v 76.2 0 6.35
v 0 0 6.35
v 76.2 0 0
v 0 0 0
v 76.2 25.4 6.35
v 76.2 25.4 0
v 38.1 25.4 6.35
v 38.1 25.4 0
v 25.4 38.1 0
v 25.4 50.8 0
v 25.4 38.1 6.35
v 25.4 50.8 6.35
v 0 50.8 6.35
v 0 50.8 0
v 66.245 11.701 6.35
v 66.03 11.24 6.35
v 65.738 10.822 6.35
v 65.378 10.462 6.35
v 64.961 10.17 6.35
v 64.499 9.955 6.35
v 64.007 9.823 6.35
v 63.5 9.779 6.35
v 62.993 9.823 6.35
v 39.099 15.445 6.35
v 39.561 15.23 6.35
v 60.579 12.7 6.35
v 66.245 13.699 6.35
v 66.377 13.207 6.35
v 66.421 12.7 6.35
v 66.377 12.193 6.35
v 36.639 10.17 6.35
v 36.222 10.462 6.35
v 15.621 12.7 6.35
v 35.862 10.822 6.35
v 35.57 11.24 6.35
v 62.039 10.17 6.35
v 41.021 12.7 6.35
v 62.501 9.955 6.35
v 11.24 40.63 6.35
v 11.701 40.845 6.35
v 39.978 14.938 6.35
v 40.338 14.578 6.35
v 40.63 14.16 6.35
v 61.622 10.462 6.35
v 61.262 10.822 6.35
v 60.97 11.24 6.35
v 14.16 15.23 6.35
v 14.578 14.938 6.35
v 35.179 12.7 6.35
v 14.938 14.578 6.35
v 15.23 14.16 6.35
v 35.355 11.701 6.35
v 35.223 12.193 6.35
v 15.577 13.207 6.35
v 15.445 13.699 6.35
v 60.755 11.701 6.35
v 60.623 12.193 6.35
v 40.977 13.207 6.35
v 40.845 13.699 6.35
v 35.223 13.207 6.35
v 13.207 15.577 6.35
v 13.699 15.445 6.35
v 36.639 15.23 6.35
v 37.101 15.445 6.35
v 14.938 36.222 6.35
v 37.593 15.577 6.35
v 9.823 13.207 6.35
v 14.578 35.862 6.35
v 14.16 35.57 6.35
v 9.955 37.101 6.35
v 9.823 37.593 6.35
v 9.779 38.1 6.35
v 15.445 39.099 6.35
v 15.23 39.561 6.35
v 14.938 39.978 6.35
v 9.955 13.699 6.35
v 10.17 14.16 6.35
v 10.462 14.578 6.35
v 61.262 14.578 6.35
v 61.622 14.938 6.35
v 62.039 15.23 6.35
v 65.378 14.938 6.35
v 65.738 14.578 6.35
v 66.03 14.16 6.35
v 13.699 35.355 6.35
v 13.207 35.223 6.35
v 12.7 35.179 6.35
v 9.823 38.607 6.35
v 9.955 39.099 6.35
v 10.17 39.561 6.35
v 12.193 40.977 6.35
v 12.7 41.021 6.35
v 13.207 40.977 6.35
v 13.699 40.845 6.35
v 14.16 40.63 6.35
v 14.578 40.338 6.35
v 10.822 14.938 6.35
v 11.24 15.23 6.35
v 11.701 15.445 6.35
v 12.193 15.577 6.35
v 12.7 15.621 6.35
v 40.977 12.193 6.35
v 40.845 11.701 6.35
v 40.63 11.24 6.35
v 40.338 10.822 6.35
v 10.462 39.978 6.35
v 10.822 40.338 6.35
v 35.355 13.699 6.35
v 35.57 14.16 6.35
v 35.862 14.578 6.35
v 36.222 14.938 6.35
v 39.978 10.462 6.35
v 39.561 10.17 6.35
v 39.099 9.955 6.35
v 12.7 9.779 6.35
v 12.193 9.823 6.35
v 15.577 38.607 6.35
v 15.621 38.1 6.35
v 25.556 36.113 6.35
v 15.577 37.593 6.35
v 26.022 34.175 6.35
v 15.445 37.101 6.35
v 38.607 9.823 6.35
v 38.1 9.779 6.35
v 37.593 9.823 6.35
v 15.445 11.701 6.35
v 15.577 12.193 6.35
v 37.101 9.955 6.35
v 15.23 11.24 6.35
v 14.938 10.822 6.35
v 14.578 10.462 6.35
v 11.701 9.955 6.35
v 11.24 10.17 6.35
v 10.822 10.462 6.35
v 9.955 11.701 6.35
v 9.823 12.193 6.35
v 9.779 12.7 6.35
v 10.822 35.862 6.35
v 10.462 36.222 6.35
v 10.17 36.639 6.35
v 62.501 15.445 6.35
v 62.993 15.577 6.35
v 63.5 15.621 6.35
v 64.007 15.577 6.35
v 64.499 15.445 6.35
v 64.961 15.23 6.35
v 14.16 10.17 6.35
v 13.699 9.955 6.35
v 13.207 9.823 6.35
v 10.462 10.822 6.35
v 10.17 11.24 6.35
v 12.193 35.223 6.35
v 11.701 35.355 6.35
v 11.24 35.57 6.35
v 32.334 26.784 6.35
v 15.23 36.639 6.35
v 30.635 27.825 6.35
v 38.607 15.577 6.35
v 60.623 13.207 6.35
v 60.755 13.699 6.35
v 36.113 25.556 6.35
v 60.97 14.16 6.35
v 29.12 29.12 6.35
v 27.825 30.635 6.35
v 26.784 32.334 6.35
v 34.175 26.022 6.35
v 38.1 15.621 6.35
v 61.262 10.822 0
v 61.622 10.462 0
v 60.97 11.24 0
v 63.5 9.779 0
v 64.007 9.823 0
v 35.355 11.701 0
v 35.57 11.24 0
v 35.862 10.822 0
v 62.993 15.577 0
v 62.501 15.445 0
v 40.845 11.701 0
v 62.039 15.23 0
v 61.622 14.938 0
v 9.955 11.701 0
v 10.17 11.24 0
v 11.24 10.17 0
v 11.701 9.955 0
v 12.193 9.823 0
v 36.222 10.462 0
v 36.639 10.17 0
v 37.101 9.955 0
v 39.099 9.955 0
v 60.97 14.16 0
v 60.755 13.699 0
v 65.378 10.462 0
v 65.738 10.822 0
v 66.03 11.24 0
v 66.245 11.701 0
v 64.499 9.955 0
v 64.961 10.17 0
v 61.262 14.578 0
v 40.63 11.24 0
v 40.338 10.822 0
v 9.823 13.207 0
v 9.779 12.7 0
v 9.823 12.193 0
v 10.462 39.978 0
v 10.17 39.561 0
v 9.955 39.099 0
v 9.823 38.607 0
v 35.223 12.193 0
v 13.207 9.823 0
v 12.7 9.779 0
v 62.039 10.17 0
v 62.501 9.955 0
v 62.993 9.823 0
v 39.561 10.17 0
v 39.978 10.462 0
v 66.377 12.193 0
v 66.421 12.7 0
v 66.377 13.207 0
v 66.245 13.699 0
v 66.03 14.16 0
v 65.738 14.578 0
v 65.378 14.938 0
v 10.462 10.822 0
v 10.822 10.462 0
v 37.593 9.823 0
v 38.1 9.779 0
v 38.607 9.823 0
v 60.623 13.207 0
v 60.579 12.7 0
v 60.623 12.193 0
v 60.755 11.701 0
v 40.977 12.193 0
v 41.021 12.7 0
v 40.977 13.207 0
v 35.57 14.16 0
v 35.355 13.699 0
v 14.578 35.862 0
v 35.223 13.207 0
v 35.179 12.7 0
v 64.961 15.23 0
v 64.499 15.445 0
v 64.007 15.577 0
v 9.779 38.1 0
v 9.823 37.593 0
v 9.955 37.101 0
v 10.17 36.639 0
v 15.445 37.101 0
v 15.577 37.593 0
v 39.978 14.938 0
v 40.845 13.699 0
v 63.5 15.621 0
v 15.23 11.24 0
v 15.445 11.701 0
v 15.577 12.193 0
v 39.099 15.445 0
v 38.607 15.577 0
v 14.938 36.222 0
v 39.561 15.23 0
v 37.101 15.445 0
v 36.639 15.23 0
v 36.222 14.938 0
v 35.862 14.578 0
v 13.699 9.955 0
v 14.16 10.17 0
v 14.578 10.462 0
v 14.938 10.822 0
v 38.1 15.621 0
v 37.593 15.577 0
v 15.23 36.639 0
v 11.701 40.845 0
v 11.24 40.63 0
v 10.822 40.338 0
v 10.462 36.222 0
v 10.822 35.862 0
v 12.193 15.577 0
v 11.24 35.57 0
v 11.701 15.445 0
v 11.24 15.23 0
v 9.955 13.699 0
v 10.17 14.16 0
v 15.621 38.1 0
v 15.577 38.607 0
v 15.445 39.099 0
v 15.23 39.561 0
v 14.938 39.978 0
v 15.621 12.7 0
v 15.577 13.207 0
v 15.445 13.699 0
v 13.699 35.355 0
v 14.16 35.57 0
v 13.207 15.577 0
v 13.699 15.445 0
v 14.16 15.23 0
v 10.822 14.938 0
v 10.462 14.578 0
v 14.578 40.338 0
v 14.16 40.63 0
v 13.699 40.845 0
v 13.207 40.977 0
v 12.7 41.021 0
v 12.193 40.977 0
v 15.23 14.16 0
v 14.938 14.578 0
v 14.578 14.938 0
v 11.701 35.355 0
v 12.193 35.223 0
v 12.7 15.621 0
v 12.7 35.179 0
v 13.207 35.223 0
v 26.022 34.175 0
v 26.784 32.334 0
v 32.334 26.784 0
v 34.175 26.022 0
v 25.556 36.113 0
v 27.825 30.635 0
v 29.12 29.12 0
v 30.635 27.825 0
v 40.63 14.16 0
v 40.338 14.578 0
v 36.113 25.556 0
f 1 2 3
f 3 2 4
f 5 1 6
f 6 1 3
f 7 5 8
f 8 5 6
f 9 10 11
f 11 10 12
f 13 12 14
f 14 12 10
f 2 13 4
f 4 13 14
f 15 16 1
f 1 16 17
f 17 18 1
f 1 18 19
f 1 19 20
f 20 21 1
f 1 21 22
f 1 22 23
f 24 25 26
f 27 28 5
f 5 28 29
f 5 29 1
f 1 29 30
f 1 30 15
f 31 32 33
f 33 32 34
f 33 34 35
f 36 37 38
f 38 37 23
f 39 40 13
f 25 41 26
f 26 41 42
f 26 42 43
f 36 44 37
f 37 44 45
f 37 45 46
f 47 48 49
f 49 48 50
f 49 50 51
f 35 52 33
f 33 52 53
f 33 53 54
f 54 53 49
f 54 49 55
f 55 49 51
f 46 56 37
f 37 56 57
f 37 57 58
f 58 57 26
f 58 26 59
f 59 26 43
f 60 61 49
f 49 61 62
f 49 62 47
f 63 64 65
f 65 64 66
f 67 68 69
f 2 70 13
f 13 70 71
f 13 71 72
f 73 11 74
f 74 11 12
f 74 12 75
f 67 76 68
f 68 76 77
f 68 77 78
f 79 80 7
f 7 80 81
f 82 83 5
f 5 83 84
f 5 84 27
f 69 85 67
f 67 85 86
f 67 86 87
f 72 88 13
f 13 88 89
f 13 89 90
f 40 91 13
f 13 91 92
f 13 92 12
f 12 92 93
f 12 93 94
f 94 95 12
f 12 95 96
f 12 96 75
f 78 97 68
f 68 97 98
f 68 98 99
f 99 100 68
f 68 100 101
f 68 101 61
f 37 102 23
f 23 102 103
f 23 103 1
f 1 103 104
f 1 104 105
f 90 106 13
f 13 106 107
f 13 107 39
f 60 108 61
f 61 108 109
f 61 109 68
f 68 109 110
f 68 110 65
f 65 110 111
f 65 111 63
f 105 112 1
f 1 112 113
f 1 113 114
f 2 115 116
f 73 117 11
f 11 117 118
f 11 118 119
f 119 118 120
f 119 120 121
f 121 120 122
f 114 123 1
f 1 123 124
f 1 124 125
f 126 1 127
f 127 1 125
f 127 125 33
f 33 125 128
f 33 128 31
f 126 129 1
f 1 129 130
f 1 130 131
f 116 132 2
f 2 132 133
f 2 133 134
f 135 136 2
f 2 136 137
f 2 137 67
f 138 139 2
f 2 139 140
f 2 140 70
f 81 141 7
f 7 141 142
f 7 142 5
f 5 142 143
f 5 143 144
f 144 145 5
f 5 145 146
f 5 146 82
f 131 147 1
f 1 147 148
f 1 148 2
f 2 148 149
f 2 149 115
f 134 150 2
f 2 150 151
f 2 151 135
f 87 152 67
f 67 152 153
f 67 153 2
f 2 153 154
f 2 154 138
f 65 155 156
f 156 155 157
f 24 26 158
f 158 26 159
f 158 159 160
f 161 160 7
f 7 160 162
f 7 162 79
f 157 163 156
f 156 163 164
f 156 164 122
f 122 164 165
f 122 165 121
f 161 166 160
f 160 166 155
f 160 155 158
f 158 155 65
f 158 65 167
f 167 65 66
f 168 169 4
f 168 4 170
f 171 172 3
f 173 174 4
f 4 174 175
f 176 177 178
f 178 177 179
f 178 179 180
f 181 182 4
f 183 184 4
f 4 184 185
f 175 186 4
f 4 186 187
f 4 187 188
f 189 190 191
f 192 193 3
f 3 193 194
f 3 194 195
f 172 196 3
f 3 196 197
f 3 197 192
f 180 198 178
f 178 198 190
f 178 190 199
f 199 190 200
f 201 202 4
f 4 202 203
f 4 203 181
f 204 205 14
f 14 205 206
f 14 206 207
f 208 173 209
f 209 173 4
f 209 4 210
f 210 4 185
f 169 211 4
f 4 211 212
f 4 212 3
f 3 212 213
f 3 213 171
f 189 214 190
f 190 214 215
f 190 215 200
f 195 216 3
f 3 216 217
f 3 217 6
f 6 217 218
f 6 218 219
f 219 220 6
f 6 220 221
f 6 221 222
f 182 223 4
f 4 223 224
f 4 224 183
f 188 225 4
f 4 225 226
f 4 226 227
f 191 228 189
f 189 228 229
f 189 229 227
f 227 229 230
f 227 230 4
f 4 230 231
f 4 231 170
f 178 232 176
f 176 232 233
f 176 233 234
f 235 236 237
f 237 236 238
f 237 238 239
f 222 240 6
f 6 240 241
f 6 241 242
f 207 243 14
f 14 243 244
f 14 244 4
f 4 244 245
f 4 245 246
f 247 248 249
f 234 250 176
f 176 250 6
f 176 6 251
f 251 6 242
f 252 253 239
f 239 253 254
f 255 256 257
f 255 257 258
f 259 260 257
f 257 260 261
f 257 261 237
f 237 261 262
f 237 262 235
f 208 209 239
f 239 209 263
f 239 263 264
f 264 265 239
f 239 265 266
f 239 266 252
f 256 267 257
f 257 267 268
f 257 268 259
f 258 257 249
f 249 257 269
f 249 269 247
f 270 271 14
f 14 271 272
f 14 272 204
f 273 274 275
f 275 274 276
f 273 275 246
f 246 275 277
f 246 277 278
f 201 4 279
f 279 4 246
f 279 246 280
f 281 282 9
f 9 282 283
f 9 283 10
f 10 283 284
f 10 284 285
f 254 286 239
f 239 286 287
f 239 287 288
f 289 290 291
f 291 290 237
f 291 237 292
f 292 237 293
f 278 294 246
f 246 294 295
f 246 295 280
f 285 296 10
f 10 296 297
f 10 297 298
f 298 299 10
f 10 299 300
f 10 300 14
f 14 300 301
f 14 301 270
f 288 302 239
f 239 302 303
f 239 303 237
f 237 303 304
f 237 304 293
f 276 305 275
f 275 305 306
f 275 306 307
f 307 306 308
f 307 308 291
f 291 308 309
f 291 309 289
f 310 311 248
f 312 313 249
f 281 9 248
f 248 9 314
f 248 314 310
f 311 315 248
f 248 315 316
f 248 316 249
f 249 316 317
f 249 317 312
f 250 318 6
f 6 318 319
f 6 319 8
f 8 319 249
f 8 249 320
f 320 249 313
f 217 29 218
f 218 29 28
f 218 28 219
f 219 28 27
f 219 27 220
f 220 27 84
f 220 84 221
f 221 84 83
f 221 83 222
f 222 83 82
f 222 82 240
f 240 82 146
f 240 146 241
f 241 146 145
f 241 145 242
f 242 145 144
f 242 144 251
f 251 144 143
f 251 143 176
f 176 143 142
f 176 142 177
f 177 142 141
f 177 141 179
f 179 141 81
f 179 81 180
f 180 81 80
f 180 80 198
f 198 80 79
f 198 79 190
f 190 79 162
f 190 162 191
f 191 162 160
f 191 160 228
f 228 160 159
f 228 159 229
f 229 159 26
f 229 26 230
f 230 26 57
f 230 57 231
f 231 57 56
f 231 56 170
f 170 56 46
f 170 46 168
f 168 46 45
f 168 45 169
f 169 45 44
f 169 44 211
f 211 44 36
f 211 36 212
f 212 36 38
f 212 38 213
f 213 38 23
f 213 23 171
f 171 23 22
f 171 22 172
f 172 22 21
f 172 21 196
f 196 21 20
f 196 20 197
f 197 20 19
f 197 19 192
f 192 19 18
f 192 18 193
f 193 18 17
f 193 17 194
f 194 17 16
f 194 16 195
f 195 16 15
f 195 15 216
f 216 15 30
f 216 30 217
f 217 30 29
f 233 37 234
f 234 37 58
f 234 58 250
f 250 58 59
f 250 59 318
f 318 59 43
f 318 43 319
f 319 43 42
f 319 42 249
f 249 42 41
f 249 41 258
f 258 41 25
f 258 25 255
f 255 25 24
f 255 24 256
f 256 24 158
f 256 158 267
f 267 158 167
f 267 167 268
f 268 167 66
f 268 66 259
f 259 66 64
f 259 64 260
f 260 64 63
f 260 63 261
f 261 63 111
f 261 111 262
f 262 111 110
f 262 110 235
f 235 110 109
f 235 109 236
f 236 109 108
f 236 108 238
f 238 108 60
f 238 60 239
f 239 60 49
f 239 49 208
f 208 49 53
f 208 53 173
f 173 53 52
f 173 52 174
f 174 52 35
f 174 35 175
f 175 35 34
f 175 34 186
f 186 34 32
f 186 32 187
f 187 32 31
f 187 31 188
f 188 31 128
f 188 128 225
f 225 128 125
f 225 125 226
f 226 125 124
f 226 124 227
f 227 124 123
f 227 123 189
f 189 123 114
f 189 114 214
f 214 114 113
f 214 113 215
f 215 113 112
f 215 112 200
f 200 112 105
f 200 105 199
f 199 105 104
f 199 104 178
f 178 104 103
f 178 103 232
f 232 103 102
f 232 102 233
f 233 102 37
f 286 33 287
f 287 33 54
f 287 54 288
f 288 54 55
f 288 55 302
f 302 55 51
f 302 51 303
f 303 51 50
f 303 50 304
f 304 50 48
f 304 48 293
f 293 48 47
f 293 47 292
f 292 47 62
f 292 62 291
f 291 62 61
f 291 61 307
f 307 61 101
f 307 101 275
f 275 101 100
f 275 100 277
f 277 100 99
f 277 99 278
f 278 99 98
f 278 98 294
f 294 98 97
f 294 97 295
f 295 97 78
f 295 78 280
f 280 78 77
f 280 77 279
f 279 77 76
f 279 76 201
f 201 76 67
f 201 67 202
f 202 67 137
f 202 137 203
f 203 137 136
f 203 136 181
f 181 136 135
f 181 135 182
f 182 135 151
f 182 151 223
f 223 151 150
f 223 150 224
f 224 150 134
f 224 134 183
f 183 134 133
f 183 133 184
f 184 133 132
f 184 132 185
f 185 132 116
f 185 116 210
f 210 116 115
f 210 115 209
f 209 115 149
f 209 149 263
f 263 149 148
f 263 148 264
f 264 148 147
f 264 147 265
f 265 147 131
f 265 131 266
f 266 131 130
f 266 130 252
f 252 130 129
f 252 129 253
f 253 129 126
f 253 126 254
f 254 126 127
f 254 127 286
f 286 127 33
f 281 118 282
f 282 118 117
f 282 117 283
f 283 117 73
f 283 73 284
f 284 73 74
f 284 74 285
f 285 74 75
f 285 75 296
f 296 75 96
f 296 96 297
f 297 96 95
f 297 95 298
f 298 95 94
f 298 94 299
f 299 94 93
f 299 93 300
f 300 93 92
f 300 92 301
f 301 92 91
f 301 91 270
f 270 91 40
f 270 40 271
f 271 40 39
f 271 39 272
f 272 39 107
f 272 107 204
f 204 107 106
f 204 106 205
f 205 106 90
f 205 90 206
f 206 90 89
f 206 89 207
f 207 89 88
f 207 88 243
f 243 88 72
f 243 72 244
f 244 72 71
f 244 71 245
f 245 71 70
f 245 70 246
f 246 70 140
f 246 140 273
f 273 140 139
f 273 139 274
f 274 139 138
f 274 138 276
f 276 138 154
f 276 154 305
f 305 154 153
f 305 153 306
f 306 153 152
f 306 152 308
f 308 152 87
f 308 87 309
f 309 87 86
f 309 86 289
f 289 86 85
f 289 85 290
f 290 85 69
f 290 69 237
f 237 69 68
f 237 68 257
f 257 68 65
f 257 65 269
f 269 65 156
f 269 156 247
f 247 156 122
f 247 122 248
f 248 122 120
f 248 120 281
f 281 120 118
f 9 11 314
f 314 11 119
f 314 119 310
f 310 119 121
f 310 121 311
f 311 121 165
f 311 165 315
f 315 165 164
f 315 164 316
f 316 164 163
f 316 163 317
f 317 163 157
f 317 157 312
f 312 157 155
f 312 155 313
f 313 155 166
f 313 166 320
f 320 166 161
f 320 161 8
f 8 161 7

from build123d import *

# Parameters (mm, degrees)
BOSS_EXTRUDE1_DEPTH = 6.35
SKETCH2_R           = 2.921
CUT_EXTRUDE1_DEPTH  = 92.800885072
FILLET1_R           = 12.7


with BuildPart() as part:
    # Sketch1 → Boss-Extrude1 (new body)
    with BuildSketch(Plane.XY):
        Polygon((0, 0), (0, 50.8), (25.4, 50.8), (25.4, 25.4), (76.2, 25.4), (76.2, 0), align=None)
    extrude(amount=BOSS_EXTRUDE1_DEPTH)

    # Sketch2 → Cut-Extrude1 (cut, through all)
    with BuildSketch(Plane.XY.offset(6.35)):
        with Locations((12.7, 38.1)):
            Circle(SKETCH2_R)
        with Locations((12.7, 12.7)):
            Circle(SKETCH2_R)
        with Locations((38.1, 12.7)):
            Circle(SKETCH2_R)
        with Locations((63.5, 12.7)):
            Circle(SKETCH2_R)
    extrude(amount=-CUT_EXTRUDE1_DEPTH, mode=Mode.SUBTRACT)

    # Fillet1
    fillet1_edges = [part.edges().sort_by_distance(p)[0] for p in [
        (25.4, 25.4, 3.175),
    ]]
    fillet(fillet1_edges, radius=FILLET1_R)


solid = part.part
